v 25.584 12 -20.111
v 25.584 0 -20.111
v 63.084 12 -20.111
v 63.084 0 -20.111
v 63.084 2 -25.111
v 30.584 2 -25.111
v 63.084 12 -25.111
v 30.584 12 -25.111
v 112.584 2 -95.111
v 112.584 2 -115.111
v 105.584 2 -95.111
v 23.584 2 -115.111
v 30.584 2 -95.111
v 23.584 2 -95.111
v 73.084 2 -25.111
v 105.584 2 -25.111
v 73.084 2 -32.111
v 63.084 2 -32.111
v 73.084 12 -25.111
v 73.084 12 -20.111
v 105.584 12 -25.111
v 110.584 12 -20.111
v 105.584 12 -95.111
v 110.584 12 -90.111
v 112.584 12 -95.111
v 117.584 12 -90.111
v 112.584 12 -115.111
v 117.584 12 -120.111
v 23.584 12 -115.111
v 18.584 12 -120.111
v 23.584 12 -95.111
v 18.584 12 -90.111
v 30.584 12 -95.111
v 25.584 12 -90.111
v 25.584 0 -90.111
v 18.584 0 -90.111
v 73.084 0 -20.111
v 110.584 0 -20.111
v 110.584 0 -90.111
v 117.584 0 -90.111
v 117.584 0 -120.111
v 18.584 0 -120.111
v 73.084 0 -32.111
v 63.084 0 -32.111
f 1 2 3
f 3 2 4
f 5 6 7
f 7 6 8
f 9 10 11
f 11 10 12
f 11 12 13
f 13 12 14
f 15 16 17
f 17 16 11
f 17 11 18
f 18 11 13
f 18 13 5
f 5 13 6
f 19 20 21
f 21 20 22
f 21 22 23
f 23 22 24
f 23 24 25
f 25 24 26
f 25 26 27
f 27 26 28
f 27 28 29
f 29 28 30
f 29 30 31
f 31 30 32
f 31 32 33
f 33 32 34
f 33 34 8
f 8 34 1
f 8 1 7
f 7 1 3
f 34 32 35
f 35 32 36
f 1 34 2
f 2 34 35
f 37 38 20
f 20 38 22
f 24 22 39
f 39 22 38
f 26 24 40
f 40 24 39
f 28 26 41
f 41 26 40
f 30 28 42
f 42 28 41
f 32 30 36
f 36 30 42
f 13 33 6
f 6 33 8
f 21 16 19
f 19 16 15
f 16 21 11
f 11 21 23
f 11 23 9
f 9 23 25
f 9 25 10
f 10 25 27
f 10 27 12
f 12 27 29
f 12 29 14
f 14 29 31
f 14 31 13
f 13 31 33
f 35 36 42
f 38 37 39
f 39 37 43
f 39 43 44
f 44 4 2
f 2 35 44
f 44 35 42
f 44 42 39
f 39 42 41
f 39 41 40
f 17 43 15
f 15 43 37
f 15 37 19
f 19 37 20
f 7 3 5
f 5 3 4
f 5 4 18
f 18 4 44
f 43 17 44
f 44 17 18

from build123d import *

# Parameters (mm, degrees)
BOSS_EXTRUDE2_DEPTH = 2
BOSS_EXTRUDE3_DEPTH = 12
SKETCH4_W           = 10
SKETCH4_H           = 12
CUT_EXTRUDE1_DEPTH  = 12


with BuildPart() as part:
    # Sketch1 → Boss-Extrude2 (new body)
    with BuildSketch(Plane(origin=(0, 0, 0), x_dir=(1, 0, 0), z_dir=(0, 1, 0))):
        Polygon((30.583615977, 95.111042946), (23.583615977, 95.111042946), (23.583615977, 115.111042946), (112.583615977, 115.111042946), (112.583615977, 95.111042946), (105.583615977, 95.111042946), (105.583615977, 25.111042946), (30.583615977, 25.111042946), align=None)
    extrude(amount=BOSS_EXTRUDE2_DEPTH)

    # Sketch3 → Boss-Extrude3 (add)
    with BuildSketch(Plane(origin=(0, 0, 0), x_dir=(1, 0, 0), z_dir=(0, 1, 0))):
        Polygon((25.583615977, 90.111042946), (25.583615977, 20.111042946), (110.583615977, 20.111042946), (110.583615977, 90.111042946), (117.583615977, 90.111042946), (117.583615977, 120.111042946), (18.583615977, 120.111042946), (18.583615977, 90.111042946), align=None)
        Polygon((30.583615977, 95.111042946), (23.583615977, 95.111042946), (23.583615977, 115.111042946), (112.583615977, 115.111042946), (112.583615977, 95.111042946), (105.583615977, 95.111042946), (105.583615977, 25.111042946), (30.583615977, 25.111042946), align=None, mode=Mode.SUBTRACT)
    extrude(amount=BOSS_EXTRUDE3_DEPTH)

    # Sketch4 → Cut-Extrude1 (cut)
    with BuildSketch(Plane.XY.offset(-20.111042946)):
        with Locations((68.083615977, 6)):
            Rectangle(SKETCH4_W, SKETCH4_H)
    extrude(amount=-CUT_EXTRUDE1_DEPTH, mode=Mode.SUBTRACT)


solid = part.part
